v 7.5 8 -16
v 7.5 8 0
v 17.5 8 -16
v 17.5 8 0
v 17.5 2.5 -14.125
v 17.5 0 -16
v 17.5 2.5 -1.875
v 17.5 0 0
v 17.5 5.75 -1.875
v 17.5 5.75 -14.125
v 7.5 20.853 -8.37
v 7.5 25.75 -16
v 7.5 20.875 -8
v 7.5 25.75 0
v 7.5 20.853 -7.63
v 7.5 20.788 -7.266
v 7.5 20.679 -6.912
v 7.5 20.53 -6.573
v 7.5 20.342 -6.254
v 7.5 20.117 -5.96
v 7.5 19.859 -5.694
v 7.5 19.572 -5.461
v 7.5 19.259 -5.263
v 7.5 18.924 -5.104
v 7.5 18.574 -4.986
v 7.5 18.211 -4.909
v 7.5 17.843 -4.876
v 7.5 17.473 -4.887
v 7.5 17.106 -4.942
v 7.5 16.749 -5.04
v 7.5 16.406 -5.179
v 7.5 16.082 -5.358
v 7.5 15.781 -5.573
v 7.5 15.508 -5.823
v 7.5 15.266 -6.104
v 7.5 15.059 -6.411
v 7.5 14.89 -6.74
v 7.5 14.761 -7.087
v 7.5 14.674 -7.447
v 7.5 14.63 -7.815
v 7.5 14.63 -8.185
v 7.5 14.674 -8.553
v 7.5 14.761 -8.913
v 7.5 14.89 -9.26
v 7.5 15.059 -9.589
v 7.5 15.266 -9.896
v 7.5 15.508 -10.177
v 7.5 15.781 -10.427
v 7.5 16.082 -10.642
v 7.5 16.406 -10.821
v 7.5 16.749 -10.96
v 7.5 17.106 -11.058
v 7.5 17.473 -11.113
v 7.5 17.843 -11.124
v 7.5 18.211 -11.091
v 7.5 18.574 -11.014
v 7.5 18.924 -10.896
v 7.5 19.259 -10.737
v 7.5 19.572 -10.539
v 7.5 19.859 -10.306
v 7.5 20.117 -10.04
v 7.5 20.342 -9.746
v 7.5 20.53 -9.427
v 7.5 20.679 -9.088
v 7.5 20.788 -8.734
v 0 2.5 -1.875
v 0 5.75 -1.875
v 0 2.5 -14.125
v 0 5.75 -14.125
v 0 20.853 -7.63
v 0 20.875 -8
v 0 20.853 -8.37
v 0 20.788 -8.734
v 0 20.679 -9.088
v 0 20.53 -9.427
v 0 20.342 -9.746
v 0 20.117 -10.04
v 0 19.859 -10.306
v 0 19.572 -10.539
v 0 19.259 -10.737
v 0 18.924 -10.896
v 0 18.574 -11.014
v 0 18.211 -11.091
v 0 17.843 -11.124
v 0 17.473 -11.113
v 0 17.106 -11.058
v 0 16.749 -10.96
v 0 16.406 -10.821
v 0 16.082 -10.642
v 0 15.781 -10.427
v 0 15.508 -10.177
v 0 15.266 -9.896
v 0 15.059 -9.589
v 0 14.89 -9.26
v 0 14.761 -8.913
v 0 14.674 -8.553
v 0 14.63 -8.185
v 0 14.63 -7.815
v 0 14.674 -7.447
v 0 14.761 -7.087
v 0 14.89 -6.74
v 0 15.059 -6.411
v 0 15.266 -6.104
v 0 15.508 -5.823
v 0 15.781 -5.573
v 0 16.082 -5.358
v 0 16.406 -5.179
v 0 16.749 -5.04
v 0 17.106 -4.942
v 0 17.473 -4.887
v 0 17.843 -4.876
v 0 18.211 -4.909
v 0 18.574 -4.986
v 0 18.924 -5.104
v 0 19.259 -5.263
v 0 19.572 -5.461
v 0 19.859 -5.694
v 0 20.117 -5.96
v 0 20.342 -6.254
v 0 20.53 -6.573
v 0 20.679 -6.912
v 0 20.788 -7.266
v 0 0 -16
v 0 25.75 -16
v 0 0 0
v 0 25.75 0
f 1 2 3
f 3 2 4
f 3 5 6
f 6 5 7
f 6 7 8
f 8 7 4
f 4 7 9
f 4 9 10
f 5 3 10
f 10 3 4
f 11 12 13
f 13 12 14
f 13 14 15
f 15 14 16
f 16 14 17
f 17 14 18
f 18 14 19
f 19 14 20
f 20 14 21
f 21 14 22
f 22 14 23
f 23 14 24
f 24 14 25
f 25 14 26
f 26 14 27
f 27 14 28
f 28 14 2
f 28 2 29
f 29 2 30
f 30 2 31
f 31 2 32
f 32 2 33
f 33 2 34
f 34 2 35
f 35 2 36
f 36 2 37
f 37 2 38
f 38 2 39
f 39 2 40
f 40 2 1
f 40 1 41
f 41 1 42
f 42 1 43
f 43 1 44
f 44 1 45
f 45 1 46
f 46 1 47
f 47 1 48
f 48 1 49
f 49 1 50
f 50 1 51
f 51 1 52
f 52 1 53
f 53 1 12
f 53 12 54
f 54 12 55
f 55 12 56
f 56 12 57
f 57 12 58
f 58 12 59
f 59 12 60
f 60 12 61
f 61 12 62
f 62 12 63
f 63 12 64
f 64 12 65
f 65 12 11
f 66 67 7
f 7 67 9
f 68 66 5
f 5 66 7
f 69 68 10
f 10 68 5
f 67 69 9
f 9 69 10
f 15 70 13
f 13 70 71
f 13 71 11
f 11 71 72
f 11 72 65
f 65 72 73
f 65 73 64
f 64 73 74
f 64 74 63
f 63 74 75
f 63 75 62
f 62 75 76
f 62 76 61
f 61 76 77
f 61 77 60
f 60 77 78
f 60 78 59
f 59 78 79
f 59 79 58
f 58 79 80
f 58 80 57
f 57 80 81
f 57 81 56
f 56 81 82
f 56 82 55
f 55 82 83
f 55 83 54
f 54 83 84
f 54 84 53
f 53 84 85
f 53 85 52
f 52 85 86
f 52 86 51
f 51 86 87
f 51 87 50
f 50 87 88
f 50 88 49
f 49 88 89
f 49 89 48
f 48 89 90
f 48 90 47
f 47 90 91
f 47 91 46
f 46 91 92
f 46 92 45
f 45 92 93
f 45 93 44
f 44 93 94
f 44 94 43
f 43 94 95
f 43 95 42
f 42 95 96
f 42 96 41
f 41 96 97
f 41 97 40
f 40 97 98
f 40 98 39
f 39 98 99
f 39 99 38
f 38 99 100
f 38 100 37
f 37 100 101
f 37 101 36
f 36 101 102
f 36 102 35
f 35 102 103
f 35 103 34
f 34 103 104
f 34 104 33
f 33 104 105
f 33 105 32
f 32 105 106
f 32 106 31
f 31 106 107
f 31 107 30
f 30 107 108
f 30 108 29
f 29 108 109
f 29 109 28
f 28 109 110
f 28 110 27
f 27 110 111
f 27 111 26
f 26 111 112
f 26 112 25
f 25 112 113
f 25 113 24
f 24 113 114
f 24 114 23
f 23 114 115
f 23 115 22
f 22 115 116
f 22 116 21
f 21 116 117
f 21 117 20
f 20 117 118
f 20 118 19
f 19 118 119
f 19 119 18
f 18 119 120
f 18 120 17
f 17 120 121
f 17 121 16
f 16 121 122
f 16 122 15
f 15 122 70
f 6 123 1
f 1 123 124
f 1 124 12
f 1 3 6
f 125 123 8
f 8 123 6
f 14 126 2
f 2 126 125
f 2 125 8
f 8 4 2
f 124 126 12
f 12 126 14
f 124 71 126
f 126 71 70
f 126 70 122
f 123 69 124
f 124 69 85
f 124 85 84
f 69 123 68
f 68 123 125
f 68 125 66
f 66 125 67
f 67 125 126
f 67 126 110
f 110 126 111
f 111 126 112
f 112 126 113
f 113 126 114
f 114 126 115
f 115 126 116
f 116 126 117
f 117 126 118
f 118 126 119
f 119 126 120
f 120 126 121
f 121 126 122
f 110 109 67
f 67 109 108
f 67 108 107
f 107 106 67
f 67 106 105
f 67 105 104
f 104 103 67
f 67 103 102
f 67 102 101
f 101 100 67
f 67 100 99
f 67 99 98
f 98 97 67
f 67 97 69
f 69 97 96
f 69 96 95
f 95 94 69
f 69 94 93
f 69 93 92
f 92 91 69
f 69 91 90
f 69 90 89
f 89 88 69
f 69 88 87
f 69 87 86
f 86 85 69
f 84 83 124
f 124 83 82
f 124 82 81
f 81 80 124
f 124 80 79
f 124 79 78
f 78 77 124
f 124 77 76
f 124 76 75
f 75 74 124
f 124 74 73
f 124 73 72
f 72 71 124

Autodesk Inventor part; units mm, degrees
ref_plane "YZ Plane" through (0, 0, 0) normal (1, 0, 0) x (0, 1, 0)
ref_plane "XZ Plane" through (0, 0, 0) normal (0, 1, 0) x (-1, 0, 0)
ref_plane "XY Plane" through (0, 0, 0) normal (0, 0, 1) x (1, 0, 0)
sketch "Sketch1" plane through (0, 0, 0) normal (1, 0, 0) x (0, 1, 0)
  line L0 (0, 0) -> (25.75, 0)
  line L1 (25.75, 0) -> (25.75, -16)
  line L2 (25.75, -16) -> (0, -16)
  line L3 (0, -16) -> (0, 0)
  line L4 (0, 0) -> (2.5, 0) construction
  line L5 (2.5, 0) -> (2.5, -16) construction
  line L6 (2.5, -16) -> (0, -16) construction
  line L7 (0, -16) -> (0, 0) construction
  line L8 (0, 0) -> (1.875, 0) construction
  line L9 (0, -2.8568) -> (0, 0) construction
  line L10 (0, 0) -> (25.75, 0) construction
  line L11 (25.75, 0) -> (25.75, -1.875) construction
  line L12 (25.75, -1.875) -> (0, -1.875) construction
  line L13 (0, -1.875) -> (0, 0) construction
  line L14 (25.75, -16) -> (0, -16) construction
  line L15 (0, -16) -> (0, -14.125) construction
  line L16 (0, -14.125) -> (25.75, -14.125) construction
  line L17 (25.75, -14.125) -> (25.75, -16) construction
  line L18 (2.5, -1.875) -> (5.75, -1.875)
  line L19 (5.75, -1.875) -> (5.75, -14.125)
  line L20 (5.75, -14.125) -> (2.5, -14.125)
  line L21 (2.5, -14.125) -> (2.5, -1.875)
  circle A0 centre (17.75, -8) radius 3.125
  dimension "d0" = 25.75
  dimension "d1" = 16
  dimension "d2" = 2.5
  dimension "d4" = 1.875
  dimension "d5" = 1.875
  dimension "d6" = 3.25
  dimension "d7" = 6.25
extrude "Extrusion1" add sketch "Sketch1" along normal blind 7.5
sketch "Sketch2" plane through (7.5, 0, 0) normal (1, 0, 0) x (0, 0, -1)
  line L0 (0, 0) -> (16, 0) projected
  line L1 (16, 0) -> (16, 25.75) projected
  line L2 (0, 0) -> (16, 0)
  line L3 (16, 0) -> (16, 8)
  line L4 (16, 8) -> (0, 8)
  line L5 (0, 8) -> (0, 0)
  line L6 (1.875, 2.5) -> (1.875, 5.75) projected
  line L7 (14.125, 5.75) -> (14.125, 2.5) projected
  line L8 (1.875, 5.75) -> (14.125, 5.75)
  line L9 (14.125, 5.75) -> (14.125, 2.5)
  line L10 (14.125, 2.5) -> (1.875, 2.5)
  line L11 (1.875, 2.5) -> (1.875, 5.75)
  dimension "d10" = 8
extrude "Extrusion2" add sketch "Sketch2" along normal blind 10
properties part number "_3DPrint"
